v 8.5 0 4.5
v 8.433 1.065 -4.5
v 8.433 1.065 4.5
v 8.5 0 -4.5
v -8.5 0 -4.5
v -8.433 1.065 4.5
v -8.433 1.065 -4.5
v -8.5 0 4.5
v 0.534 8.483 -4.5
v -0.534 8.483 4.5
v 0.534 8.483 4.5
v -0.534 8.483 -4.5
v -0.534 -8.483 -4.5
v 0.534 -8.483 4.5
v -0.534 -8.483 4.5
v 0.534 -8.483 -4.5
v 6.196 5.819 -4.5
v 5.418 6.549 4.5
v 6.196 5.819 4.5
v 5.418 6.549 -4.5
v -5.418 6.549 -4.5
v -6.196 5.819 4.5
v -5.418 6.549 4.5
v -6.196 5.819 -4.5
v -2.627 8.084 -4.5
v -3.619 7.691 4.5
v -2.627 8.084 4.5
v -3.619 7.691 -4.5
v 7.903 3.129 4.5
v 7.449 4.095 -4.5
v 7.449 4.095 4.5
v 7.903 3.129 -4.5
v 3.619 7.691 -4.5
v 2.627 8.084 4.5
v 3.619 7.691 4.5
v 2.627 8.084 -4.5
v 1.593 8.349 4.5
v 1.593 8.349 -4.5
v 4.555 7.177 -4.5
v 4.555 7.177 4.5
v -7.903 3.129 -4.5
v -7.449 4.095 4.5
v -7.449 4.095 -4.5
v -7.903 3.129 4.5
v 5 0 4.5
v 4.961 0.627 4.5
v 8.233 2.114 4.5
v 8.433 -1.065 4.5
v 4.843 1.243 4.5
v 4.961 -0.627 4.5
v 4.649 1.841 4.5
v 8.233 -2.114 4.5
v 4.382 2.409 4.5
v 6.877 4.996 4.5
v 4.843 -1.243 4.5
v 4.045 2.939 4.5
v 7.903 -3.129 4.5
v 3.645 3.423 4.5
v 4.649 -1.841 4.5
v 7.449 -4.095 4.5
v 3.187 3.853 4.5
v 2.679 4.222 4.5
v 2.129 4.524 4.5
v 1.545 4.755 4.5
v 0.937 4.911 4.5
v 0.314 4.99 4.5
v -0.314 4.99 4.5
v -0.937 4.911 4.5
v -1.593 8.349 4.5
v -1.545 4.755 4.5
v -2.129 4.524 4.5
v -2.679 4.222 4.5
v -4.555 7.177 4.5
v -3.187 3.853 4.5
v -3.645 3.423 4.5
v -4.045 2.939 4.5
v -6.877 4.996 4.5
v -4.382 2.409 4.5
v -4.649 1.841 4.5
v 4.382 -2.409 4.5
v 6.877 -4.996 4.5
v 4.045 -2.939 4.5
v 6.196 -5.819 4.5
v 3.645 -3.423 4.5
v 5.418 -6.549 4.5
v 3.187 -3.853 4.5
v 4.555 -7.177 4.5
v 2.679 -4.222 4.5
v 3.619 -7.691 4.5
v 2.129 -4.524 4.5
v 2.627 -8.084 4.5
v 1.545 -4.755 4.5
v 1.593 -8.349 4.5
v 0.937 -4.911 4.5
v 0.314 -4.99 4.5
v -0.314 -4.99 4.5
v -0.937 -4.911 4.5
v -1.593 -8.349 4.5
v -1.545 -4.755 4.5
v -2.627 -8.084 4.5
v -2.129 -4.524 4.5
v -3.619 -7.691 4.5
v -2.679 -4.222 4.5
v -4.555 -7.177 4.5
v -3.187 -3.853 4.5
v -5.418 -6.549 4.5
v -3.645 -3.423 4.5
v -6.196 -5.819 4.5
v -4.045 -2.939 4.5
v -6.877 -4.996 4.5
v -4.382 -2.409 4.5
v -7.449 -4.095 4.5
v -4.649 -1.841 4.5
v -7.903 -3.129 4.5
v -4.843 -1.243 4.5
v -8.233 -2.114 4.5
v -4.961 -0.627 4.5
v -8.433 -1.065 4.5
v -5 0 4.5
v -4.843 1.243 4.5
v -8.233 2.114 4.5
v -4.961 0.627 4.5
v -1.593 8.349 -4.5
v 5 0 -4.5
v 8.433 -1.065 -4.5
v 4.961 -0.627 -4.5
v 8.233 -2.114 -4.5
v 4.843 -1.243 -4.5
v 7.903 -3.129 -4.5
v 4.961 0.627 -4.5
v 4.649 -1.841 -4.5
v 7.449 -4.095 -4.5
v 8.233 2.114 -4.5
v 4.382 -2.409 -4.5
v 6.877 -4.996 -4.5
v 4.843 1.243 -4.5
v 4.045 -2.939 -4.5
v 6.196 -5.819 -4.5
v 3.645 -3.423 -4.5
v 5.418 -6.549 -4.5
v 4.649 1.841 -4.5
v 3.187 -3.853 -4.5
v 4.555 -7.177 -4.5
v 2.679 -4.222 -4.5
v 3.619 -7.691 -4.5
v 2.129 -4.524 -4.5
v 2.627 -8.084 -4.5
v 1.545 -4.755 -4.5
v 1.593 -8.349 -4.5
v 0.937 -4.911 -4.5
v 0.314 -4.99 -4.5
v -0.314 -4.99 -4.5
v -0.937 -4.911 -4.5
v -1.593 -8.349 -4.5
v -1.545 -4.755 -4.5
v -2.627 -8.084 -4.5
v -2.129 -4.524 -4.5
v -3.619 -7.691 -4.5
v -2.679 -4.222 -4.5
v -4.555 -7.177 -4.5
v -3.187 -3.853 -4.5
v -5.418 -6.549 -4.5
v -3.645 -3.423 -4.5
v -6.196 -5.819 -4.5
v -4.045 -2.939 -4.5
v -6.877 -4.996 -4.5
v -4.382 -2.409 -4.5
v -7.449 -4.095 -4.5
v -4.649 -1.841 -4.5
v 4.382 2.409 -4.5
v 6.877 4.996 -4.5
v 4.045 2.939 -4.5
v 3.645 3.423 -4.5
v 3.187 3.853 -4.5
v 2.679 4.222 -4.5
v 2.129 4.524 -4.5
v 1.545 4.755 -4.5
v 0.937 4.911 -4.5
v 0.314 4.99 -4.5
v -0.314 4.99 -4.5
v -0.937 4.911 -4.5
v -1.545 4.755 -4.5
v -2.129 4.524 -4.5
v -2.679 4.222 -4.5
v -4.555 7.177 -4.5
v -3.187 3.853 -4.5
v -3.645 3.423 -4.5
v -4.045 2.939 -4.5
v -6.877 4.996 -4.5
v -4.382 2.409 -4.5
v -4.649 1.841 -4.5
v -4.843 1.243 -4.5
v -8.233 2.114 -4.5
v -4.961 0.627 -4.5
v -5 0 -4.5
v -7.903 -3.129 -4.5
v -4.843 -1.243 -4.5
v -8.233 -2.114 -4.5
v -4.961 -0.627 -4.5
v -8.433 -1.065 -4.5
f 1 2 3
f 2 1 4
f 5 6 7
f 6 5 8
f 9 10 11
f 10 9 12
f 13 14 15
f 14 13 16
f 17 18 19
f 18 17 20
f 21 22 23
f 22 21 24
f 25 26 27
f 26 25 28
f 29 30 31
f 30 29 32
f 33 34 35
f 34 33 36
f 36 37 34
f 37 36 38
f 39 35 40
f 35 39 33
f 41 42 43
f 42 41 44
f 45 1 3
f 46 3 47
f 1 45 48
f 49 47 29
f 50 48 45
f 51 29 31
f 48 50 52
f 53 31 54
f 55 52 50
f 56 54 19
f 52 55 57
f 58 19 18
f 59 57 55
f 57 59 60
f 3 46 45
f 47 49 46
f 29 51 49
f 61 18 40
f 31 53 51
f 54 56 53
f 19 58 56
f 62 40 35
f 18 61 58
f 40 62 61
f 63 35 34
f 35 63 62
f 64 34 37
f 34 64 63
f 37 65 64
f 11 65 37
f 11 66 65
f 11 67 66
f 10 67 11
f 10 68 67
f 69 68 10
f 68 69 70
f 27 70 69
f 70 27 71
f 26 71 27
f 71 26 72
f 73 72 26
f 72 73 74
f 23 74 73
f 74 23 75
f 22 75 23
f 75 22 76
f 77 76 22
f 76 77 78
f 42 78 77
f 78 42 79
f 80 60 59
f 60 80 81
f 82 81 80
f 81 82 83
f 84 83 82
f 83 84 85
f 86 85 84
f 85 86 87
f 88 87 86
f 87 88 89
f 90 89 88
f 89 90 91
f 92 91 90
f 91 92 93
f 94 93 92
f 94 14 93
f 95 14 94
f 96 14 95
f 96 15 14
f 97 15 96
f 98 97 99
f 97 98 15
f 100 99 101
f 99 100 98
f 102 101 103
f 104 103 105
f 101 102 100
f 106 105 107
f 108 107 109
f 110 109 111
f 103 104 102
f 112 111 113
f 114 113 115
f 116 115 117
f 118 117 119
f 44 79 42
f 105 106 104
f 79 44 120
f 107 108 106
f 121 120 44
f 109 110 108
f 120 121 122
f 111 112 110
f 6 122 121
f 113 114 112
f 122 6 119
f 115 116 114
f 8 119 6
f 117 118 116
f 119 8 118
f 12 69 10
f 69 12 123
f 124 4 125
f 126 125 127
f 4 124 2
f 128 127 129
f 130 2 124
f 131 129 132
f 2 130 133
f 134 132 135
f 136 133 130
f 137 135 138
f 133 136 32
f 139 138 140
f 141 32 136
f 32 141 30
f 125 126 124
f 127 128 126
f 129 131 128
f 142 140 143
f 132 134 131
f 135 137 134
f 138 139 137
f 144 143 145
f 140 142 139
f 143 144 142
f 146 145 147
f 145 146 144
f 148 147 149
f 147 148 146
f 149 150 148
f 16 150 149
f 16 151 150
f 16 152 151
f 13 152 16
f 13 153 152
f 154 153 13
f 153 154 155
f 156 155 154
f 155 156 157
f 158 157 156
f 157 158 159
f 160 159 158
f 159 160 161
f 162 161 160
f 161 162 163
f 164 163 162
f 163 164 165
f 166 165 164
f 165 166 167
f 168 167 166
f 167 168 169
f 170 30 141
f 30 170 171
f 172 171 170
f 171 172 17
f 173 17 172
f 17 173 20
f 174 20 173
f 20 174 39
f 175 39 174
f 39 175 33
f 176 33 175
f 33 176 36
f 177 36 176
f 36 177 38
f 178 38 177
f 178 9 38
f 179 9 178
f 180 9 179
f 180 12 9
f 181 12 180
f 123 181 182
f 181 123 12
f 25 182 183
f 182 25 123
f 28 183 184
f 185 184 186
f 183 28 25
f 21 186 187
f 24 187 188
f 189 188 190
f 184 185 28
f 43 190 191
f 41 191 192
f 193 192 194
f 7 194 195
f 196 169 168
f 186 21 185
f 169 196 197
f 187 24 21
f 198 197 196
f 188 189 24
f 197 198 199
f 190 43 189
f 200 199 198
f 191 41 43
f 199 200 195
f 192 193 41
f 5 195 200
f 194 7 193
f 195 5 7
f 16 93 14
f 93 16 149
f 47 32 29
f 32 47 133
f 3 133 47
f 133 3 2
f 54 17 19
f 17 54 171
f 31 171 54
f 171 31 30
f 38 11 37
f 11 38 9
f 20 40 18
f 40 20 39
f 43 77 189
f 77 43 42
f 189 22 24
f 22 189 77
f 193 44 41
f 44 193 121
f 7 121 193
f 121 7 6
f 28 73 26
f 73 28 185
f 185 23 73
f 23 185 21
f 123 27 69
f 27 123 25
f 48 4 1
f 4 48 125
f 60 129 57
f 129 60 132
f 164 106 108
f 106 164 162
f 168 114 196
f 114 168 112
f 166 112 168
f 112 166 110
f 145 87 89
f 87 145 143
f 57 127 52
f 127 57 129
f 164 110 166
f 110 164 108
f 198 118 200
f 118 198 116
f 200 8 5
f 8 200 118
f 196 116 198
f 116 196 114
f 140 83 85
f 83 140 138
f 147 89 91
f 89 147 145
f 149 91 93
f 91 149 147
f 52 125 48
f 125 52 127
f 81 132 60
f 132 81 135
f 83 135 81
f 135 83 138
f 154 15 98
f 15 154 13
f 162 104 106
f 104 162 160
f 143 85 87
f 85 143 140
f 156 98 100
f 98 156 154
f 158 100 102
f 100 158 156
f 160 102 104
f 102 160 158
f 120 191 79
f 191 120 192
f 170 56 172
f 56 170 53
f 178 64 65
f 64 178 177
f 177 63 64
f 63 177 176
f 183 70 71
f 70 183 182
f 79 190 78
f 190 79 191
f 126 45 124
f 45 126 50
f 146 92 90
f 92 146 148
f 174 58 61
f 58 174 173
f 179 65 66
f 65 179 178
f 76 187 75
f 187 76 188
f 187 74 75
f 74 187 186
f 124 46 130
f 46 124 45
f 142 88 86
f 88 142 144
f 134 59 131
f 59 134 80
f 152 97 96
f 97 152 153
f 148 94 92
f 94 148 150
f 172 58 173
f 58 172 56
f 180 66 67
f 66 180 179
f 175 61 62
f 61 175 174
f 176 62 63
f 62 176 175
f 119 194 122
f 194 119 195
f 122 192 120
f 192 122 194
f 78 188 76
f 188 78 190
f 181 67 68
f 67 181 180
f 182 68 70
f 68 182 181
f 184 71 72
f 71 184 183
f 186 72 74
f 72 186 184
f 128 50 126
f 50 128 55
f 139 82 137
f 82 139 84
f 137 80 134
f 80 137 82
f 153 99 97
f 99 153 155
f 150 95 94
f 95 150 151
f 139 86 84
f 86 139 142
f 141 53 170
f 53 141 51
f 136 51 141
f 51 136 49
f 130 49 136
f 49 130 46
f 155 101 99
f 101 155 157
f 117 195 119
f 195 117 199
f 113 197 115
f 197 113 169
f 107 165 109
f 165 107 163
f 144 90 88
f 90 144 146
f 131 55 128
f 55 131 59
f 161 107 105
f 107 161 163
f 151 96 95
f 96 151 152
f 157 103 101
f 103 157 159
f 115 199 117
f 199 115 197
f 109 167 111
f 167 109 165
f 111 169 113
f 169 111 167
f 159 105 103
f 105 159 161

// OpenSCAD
$fn = 50;


difference() {
	union() {
		translate(v = [0, 0, -4.5000000000]) {
			cylinder(h = 9, r = 8.5000000000);
		}
	}
	union() {
		translate(v = [0, 0, -100.0000000000]) {
			cylinder(h = 200, r = 5.0000000000);
		}
	}
}
